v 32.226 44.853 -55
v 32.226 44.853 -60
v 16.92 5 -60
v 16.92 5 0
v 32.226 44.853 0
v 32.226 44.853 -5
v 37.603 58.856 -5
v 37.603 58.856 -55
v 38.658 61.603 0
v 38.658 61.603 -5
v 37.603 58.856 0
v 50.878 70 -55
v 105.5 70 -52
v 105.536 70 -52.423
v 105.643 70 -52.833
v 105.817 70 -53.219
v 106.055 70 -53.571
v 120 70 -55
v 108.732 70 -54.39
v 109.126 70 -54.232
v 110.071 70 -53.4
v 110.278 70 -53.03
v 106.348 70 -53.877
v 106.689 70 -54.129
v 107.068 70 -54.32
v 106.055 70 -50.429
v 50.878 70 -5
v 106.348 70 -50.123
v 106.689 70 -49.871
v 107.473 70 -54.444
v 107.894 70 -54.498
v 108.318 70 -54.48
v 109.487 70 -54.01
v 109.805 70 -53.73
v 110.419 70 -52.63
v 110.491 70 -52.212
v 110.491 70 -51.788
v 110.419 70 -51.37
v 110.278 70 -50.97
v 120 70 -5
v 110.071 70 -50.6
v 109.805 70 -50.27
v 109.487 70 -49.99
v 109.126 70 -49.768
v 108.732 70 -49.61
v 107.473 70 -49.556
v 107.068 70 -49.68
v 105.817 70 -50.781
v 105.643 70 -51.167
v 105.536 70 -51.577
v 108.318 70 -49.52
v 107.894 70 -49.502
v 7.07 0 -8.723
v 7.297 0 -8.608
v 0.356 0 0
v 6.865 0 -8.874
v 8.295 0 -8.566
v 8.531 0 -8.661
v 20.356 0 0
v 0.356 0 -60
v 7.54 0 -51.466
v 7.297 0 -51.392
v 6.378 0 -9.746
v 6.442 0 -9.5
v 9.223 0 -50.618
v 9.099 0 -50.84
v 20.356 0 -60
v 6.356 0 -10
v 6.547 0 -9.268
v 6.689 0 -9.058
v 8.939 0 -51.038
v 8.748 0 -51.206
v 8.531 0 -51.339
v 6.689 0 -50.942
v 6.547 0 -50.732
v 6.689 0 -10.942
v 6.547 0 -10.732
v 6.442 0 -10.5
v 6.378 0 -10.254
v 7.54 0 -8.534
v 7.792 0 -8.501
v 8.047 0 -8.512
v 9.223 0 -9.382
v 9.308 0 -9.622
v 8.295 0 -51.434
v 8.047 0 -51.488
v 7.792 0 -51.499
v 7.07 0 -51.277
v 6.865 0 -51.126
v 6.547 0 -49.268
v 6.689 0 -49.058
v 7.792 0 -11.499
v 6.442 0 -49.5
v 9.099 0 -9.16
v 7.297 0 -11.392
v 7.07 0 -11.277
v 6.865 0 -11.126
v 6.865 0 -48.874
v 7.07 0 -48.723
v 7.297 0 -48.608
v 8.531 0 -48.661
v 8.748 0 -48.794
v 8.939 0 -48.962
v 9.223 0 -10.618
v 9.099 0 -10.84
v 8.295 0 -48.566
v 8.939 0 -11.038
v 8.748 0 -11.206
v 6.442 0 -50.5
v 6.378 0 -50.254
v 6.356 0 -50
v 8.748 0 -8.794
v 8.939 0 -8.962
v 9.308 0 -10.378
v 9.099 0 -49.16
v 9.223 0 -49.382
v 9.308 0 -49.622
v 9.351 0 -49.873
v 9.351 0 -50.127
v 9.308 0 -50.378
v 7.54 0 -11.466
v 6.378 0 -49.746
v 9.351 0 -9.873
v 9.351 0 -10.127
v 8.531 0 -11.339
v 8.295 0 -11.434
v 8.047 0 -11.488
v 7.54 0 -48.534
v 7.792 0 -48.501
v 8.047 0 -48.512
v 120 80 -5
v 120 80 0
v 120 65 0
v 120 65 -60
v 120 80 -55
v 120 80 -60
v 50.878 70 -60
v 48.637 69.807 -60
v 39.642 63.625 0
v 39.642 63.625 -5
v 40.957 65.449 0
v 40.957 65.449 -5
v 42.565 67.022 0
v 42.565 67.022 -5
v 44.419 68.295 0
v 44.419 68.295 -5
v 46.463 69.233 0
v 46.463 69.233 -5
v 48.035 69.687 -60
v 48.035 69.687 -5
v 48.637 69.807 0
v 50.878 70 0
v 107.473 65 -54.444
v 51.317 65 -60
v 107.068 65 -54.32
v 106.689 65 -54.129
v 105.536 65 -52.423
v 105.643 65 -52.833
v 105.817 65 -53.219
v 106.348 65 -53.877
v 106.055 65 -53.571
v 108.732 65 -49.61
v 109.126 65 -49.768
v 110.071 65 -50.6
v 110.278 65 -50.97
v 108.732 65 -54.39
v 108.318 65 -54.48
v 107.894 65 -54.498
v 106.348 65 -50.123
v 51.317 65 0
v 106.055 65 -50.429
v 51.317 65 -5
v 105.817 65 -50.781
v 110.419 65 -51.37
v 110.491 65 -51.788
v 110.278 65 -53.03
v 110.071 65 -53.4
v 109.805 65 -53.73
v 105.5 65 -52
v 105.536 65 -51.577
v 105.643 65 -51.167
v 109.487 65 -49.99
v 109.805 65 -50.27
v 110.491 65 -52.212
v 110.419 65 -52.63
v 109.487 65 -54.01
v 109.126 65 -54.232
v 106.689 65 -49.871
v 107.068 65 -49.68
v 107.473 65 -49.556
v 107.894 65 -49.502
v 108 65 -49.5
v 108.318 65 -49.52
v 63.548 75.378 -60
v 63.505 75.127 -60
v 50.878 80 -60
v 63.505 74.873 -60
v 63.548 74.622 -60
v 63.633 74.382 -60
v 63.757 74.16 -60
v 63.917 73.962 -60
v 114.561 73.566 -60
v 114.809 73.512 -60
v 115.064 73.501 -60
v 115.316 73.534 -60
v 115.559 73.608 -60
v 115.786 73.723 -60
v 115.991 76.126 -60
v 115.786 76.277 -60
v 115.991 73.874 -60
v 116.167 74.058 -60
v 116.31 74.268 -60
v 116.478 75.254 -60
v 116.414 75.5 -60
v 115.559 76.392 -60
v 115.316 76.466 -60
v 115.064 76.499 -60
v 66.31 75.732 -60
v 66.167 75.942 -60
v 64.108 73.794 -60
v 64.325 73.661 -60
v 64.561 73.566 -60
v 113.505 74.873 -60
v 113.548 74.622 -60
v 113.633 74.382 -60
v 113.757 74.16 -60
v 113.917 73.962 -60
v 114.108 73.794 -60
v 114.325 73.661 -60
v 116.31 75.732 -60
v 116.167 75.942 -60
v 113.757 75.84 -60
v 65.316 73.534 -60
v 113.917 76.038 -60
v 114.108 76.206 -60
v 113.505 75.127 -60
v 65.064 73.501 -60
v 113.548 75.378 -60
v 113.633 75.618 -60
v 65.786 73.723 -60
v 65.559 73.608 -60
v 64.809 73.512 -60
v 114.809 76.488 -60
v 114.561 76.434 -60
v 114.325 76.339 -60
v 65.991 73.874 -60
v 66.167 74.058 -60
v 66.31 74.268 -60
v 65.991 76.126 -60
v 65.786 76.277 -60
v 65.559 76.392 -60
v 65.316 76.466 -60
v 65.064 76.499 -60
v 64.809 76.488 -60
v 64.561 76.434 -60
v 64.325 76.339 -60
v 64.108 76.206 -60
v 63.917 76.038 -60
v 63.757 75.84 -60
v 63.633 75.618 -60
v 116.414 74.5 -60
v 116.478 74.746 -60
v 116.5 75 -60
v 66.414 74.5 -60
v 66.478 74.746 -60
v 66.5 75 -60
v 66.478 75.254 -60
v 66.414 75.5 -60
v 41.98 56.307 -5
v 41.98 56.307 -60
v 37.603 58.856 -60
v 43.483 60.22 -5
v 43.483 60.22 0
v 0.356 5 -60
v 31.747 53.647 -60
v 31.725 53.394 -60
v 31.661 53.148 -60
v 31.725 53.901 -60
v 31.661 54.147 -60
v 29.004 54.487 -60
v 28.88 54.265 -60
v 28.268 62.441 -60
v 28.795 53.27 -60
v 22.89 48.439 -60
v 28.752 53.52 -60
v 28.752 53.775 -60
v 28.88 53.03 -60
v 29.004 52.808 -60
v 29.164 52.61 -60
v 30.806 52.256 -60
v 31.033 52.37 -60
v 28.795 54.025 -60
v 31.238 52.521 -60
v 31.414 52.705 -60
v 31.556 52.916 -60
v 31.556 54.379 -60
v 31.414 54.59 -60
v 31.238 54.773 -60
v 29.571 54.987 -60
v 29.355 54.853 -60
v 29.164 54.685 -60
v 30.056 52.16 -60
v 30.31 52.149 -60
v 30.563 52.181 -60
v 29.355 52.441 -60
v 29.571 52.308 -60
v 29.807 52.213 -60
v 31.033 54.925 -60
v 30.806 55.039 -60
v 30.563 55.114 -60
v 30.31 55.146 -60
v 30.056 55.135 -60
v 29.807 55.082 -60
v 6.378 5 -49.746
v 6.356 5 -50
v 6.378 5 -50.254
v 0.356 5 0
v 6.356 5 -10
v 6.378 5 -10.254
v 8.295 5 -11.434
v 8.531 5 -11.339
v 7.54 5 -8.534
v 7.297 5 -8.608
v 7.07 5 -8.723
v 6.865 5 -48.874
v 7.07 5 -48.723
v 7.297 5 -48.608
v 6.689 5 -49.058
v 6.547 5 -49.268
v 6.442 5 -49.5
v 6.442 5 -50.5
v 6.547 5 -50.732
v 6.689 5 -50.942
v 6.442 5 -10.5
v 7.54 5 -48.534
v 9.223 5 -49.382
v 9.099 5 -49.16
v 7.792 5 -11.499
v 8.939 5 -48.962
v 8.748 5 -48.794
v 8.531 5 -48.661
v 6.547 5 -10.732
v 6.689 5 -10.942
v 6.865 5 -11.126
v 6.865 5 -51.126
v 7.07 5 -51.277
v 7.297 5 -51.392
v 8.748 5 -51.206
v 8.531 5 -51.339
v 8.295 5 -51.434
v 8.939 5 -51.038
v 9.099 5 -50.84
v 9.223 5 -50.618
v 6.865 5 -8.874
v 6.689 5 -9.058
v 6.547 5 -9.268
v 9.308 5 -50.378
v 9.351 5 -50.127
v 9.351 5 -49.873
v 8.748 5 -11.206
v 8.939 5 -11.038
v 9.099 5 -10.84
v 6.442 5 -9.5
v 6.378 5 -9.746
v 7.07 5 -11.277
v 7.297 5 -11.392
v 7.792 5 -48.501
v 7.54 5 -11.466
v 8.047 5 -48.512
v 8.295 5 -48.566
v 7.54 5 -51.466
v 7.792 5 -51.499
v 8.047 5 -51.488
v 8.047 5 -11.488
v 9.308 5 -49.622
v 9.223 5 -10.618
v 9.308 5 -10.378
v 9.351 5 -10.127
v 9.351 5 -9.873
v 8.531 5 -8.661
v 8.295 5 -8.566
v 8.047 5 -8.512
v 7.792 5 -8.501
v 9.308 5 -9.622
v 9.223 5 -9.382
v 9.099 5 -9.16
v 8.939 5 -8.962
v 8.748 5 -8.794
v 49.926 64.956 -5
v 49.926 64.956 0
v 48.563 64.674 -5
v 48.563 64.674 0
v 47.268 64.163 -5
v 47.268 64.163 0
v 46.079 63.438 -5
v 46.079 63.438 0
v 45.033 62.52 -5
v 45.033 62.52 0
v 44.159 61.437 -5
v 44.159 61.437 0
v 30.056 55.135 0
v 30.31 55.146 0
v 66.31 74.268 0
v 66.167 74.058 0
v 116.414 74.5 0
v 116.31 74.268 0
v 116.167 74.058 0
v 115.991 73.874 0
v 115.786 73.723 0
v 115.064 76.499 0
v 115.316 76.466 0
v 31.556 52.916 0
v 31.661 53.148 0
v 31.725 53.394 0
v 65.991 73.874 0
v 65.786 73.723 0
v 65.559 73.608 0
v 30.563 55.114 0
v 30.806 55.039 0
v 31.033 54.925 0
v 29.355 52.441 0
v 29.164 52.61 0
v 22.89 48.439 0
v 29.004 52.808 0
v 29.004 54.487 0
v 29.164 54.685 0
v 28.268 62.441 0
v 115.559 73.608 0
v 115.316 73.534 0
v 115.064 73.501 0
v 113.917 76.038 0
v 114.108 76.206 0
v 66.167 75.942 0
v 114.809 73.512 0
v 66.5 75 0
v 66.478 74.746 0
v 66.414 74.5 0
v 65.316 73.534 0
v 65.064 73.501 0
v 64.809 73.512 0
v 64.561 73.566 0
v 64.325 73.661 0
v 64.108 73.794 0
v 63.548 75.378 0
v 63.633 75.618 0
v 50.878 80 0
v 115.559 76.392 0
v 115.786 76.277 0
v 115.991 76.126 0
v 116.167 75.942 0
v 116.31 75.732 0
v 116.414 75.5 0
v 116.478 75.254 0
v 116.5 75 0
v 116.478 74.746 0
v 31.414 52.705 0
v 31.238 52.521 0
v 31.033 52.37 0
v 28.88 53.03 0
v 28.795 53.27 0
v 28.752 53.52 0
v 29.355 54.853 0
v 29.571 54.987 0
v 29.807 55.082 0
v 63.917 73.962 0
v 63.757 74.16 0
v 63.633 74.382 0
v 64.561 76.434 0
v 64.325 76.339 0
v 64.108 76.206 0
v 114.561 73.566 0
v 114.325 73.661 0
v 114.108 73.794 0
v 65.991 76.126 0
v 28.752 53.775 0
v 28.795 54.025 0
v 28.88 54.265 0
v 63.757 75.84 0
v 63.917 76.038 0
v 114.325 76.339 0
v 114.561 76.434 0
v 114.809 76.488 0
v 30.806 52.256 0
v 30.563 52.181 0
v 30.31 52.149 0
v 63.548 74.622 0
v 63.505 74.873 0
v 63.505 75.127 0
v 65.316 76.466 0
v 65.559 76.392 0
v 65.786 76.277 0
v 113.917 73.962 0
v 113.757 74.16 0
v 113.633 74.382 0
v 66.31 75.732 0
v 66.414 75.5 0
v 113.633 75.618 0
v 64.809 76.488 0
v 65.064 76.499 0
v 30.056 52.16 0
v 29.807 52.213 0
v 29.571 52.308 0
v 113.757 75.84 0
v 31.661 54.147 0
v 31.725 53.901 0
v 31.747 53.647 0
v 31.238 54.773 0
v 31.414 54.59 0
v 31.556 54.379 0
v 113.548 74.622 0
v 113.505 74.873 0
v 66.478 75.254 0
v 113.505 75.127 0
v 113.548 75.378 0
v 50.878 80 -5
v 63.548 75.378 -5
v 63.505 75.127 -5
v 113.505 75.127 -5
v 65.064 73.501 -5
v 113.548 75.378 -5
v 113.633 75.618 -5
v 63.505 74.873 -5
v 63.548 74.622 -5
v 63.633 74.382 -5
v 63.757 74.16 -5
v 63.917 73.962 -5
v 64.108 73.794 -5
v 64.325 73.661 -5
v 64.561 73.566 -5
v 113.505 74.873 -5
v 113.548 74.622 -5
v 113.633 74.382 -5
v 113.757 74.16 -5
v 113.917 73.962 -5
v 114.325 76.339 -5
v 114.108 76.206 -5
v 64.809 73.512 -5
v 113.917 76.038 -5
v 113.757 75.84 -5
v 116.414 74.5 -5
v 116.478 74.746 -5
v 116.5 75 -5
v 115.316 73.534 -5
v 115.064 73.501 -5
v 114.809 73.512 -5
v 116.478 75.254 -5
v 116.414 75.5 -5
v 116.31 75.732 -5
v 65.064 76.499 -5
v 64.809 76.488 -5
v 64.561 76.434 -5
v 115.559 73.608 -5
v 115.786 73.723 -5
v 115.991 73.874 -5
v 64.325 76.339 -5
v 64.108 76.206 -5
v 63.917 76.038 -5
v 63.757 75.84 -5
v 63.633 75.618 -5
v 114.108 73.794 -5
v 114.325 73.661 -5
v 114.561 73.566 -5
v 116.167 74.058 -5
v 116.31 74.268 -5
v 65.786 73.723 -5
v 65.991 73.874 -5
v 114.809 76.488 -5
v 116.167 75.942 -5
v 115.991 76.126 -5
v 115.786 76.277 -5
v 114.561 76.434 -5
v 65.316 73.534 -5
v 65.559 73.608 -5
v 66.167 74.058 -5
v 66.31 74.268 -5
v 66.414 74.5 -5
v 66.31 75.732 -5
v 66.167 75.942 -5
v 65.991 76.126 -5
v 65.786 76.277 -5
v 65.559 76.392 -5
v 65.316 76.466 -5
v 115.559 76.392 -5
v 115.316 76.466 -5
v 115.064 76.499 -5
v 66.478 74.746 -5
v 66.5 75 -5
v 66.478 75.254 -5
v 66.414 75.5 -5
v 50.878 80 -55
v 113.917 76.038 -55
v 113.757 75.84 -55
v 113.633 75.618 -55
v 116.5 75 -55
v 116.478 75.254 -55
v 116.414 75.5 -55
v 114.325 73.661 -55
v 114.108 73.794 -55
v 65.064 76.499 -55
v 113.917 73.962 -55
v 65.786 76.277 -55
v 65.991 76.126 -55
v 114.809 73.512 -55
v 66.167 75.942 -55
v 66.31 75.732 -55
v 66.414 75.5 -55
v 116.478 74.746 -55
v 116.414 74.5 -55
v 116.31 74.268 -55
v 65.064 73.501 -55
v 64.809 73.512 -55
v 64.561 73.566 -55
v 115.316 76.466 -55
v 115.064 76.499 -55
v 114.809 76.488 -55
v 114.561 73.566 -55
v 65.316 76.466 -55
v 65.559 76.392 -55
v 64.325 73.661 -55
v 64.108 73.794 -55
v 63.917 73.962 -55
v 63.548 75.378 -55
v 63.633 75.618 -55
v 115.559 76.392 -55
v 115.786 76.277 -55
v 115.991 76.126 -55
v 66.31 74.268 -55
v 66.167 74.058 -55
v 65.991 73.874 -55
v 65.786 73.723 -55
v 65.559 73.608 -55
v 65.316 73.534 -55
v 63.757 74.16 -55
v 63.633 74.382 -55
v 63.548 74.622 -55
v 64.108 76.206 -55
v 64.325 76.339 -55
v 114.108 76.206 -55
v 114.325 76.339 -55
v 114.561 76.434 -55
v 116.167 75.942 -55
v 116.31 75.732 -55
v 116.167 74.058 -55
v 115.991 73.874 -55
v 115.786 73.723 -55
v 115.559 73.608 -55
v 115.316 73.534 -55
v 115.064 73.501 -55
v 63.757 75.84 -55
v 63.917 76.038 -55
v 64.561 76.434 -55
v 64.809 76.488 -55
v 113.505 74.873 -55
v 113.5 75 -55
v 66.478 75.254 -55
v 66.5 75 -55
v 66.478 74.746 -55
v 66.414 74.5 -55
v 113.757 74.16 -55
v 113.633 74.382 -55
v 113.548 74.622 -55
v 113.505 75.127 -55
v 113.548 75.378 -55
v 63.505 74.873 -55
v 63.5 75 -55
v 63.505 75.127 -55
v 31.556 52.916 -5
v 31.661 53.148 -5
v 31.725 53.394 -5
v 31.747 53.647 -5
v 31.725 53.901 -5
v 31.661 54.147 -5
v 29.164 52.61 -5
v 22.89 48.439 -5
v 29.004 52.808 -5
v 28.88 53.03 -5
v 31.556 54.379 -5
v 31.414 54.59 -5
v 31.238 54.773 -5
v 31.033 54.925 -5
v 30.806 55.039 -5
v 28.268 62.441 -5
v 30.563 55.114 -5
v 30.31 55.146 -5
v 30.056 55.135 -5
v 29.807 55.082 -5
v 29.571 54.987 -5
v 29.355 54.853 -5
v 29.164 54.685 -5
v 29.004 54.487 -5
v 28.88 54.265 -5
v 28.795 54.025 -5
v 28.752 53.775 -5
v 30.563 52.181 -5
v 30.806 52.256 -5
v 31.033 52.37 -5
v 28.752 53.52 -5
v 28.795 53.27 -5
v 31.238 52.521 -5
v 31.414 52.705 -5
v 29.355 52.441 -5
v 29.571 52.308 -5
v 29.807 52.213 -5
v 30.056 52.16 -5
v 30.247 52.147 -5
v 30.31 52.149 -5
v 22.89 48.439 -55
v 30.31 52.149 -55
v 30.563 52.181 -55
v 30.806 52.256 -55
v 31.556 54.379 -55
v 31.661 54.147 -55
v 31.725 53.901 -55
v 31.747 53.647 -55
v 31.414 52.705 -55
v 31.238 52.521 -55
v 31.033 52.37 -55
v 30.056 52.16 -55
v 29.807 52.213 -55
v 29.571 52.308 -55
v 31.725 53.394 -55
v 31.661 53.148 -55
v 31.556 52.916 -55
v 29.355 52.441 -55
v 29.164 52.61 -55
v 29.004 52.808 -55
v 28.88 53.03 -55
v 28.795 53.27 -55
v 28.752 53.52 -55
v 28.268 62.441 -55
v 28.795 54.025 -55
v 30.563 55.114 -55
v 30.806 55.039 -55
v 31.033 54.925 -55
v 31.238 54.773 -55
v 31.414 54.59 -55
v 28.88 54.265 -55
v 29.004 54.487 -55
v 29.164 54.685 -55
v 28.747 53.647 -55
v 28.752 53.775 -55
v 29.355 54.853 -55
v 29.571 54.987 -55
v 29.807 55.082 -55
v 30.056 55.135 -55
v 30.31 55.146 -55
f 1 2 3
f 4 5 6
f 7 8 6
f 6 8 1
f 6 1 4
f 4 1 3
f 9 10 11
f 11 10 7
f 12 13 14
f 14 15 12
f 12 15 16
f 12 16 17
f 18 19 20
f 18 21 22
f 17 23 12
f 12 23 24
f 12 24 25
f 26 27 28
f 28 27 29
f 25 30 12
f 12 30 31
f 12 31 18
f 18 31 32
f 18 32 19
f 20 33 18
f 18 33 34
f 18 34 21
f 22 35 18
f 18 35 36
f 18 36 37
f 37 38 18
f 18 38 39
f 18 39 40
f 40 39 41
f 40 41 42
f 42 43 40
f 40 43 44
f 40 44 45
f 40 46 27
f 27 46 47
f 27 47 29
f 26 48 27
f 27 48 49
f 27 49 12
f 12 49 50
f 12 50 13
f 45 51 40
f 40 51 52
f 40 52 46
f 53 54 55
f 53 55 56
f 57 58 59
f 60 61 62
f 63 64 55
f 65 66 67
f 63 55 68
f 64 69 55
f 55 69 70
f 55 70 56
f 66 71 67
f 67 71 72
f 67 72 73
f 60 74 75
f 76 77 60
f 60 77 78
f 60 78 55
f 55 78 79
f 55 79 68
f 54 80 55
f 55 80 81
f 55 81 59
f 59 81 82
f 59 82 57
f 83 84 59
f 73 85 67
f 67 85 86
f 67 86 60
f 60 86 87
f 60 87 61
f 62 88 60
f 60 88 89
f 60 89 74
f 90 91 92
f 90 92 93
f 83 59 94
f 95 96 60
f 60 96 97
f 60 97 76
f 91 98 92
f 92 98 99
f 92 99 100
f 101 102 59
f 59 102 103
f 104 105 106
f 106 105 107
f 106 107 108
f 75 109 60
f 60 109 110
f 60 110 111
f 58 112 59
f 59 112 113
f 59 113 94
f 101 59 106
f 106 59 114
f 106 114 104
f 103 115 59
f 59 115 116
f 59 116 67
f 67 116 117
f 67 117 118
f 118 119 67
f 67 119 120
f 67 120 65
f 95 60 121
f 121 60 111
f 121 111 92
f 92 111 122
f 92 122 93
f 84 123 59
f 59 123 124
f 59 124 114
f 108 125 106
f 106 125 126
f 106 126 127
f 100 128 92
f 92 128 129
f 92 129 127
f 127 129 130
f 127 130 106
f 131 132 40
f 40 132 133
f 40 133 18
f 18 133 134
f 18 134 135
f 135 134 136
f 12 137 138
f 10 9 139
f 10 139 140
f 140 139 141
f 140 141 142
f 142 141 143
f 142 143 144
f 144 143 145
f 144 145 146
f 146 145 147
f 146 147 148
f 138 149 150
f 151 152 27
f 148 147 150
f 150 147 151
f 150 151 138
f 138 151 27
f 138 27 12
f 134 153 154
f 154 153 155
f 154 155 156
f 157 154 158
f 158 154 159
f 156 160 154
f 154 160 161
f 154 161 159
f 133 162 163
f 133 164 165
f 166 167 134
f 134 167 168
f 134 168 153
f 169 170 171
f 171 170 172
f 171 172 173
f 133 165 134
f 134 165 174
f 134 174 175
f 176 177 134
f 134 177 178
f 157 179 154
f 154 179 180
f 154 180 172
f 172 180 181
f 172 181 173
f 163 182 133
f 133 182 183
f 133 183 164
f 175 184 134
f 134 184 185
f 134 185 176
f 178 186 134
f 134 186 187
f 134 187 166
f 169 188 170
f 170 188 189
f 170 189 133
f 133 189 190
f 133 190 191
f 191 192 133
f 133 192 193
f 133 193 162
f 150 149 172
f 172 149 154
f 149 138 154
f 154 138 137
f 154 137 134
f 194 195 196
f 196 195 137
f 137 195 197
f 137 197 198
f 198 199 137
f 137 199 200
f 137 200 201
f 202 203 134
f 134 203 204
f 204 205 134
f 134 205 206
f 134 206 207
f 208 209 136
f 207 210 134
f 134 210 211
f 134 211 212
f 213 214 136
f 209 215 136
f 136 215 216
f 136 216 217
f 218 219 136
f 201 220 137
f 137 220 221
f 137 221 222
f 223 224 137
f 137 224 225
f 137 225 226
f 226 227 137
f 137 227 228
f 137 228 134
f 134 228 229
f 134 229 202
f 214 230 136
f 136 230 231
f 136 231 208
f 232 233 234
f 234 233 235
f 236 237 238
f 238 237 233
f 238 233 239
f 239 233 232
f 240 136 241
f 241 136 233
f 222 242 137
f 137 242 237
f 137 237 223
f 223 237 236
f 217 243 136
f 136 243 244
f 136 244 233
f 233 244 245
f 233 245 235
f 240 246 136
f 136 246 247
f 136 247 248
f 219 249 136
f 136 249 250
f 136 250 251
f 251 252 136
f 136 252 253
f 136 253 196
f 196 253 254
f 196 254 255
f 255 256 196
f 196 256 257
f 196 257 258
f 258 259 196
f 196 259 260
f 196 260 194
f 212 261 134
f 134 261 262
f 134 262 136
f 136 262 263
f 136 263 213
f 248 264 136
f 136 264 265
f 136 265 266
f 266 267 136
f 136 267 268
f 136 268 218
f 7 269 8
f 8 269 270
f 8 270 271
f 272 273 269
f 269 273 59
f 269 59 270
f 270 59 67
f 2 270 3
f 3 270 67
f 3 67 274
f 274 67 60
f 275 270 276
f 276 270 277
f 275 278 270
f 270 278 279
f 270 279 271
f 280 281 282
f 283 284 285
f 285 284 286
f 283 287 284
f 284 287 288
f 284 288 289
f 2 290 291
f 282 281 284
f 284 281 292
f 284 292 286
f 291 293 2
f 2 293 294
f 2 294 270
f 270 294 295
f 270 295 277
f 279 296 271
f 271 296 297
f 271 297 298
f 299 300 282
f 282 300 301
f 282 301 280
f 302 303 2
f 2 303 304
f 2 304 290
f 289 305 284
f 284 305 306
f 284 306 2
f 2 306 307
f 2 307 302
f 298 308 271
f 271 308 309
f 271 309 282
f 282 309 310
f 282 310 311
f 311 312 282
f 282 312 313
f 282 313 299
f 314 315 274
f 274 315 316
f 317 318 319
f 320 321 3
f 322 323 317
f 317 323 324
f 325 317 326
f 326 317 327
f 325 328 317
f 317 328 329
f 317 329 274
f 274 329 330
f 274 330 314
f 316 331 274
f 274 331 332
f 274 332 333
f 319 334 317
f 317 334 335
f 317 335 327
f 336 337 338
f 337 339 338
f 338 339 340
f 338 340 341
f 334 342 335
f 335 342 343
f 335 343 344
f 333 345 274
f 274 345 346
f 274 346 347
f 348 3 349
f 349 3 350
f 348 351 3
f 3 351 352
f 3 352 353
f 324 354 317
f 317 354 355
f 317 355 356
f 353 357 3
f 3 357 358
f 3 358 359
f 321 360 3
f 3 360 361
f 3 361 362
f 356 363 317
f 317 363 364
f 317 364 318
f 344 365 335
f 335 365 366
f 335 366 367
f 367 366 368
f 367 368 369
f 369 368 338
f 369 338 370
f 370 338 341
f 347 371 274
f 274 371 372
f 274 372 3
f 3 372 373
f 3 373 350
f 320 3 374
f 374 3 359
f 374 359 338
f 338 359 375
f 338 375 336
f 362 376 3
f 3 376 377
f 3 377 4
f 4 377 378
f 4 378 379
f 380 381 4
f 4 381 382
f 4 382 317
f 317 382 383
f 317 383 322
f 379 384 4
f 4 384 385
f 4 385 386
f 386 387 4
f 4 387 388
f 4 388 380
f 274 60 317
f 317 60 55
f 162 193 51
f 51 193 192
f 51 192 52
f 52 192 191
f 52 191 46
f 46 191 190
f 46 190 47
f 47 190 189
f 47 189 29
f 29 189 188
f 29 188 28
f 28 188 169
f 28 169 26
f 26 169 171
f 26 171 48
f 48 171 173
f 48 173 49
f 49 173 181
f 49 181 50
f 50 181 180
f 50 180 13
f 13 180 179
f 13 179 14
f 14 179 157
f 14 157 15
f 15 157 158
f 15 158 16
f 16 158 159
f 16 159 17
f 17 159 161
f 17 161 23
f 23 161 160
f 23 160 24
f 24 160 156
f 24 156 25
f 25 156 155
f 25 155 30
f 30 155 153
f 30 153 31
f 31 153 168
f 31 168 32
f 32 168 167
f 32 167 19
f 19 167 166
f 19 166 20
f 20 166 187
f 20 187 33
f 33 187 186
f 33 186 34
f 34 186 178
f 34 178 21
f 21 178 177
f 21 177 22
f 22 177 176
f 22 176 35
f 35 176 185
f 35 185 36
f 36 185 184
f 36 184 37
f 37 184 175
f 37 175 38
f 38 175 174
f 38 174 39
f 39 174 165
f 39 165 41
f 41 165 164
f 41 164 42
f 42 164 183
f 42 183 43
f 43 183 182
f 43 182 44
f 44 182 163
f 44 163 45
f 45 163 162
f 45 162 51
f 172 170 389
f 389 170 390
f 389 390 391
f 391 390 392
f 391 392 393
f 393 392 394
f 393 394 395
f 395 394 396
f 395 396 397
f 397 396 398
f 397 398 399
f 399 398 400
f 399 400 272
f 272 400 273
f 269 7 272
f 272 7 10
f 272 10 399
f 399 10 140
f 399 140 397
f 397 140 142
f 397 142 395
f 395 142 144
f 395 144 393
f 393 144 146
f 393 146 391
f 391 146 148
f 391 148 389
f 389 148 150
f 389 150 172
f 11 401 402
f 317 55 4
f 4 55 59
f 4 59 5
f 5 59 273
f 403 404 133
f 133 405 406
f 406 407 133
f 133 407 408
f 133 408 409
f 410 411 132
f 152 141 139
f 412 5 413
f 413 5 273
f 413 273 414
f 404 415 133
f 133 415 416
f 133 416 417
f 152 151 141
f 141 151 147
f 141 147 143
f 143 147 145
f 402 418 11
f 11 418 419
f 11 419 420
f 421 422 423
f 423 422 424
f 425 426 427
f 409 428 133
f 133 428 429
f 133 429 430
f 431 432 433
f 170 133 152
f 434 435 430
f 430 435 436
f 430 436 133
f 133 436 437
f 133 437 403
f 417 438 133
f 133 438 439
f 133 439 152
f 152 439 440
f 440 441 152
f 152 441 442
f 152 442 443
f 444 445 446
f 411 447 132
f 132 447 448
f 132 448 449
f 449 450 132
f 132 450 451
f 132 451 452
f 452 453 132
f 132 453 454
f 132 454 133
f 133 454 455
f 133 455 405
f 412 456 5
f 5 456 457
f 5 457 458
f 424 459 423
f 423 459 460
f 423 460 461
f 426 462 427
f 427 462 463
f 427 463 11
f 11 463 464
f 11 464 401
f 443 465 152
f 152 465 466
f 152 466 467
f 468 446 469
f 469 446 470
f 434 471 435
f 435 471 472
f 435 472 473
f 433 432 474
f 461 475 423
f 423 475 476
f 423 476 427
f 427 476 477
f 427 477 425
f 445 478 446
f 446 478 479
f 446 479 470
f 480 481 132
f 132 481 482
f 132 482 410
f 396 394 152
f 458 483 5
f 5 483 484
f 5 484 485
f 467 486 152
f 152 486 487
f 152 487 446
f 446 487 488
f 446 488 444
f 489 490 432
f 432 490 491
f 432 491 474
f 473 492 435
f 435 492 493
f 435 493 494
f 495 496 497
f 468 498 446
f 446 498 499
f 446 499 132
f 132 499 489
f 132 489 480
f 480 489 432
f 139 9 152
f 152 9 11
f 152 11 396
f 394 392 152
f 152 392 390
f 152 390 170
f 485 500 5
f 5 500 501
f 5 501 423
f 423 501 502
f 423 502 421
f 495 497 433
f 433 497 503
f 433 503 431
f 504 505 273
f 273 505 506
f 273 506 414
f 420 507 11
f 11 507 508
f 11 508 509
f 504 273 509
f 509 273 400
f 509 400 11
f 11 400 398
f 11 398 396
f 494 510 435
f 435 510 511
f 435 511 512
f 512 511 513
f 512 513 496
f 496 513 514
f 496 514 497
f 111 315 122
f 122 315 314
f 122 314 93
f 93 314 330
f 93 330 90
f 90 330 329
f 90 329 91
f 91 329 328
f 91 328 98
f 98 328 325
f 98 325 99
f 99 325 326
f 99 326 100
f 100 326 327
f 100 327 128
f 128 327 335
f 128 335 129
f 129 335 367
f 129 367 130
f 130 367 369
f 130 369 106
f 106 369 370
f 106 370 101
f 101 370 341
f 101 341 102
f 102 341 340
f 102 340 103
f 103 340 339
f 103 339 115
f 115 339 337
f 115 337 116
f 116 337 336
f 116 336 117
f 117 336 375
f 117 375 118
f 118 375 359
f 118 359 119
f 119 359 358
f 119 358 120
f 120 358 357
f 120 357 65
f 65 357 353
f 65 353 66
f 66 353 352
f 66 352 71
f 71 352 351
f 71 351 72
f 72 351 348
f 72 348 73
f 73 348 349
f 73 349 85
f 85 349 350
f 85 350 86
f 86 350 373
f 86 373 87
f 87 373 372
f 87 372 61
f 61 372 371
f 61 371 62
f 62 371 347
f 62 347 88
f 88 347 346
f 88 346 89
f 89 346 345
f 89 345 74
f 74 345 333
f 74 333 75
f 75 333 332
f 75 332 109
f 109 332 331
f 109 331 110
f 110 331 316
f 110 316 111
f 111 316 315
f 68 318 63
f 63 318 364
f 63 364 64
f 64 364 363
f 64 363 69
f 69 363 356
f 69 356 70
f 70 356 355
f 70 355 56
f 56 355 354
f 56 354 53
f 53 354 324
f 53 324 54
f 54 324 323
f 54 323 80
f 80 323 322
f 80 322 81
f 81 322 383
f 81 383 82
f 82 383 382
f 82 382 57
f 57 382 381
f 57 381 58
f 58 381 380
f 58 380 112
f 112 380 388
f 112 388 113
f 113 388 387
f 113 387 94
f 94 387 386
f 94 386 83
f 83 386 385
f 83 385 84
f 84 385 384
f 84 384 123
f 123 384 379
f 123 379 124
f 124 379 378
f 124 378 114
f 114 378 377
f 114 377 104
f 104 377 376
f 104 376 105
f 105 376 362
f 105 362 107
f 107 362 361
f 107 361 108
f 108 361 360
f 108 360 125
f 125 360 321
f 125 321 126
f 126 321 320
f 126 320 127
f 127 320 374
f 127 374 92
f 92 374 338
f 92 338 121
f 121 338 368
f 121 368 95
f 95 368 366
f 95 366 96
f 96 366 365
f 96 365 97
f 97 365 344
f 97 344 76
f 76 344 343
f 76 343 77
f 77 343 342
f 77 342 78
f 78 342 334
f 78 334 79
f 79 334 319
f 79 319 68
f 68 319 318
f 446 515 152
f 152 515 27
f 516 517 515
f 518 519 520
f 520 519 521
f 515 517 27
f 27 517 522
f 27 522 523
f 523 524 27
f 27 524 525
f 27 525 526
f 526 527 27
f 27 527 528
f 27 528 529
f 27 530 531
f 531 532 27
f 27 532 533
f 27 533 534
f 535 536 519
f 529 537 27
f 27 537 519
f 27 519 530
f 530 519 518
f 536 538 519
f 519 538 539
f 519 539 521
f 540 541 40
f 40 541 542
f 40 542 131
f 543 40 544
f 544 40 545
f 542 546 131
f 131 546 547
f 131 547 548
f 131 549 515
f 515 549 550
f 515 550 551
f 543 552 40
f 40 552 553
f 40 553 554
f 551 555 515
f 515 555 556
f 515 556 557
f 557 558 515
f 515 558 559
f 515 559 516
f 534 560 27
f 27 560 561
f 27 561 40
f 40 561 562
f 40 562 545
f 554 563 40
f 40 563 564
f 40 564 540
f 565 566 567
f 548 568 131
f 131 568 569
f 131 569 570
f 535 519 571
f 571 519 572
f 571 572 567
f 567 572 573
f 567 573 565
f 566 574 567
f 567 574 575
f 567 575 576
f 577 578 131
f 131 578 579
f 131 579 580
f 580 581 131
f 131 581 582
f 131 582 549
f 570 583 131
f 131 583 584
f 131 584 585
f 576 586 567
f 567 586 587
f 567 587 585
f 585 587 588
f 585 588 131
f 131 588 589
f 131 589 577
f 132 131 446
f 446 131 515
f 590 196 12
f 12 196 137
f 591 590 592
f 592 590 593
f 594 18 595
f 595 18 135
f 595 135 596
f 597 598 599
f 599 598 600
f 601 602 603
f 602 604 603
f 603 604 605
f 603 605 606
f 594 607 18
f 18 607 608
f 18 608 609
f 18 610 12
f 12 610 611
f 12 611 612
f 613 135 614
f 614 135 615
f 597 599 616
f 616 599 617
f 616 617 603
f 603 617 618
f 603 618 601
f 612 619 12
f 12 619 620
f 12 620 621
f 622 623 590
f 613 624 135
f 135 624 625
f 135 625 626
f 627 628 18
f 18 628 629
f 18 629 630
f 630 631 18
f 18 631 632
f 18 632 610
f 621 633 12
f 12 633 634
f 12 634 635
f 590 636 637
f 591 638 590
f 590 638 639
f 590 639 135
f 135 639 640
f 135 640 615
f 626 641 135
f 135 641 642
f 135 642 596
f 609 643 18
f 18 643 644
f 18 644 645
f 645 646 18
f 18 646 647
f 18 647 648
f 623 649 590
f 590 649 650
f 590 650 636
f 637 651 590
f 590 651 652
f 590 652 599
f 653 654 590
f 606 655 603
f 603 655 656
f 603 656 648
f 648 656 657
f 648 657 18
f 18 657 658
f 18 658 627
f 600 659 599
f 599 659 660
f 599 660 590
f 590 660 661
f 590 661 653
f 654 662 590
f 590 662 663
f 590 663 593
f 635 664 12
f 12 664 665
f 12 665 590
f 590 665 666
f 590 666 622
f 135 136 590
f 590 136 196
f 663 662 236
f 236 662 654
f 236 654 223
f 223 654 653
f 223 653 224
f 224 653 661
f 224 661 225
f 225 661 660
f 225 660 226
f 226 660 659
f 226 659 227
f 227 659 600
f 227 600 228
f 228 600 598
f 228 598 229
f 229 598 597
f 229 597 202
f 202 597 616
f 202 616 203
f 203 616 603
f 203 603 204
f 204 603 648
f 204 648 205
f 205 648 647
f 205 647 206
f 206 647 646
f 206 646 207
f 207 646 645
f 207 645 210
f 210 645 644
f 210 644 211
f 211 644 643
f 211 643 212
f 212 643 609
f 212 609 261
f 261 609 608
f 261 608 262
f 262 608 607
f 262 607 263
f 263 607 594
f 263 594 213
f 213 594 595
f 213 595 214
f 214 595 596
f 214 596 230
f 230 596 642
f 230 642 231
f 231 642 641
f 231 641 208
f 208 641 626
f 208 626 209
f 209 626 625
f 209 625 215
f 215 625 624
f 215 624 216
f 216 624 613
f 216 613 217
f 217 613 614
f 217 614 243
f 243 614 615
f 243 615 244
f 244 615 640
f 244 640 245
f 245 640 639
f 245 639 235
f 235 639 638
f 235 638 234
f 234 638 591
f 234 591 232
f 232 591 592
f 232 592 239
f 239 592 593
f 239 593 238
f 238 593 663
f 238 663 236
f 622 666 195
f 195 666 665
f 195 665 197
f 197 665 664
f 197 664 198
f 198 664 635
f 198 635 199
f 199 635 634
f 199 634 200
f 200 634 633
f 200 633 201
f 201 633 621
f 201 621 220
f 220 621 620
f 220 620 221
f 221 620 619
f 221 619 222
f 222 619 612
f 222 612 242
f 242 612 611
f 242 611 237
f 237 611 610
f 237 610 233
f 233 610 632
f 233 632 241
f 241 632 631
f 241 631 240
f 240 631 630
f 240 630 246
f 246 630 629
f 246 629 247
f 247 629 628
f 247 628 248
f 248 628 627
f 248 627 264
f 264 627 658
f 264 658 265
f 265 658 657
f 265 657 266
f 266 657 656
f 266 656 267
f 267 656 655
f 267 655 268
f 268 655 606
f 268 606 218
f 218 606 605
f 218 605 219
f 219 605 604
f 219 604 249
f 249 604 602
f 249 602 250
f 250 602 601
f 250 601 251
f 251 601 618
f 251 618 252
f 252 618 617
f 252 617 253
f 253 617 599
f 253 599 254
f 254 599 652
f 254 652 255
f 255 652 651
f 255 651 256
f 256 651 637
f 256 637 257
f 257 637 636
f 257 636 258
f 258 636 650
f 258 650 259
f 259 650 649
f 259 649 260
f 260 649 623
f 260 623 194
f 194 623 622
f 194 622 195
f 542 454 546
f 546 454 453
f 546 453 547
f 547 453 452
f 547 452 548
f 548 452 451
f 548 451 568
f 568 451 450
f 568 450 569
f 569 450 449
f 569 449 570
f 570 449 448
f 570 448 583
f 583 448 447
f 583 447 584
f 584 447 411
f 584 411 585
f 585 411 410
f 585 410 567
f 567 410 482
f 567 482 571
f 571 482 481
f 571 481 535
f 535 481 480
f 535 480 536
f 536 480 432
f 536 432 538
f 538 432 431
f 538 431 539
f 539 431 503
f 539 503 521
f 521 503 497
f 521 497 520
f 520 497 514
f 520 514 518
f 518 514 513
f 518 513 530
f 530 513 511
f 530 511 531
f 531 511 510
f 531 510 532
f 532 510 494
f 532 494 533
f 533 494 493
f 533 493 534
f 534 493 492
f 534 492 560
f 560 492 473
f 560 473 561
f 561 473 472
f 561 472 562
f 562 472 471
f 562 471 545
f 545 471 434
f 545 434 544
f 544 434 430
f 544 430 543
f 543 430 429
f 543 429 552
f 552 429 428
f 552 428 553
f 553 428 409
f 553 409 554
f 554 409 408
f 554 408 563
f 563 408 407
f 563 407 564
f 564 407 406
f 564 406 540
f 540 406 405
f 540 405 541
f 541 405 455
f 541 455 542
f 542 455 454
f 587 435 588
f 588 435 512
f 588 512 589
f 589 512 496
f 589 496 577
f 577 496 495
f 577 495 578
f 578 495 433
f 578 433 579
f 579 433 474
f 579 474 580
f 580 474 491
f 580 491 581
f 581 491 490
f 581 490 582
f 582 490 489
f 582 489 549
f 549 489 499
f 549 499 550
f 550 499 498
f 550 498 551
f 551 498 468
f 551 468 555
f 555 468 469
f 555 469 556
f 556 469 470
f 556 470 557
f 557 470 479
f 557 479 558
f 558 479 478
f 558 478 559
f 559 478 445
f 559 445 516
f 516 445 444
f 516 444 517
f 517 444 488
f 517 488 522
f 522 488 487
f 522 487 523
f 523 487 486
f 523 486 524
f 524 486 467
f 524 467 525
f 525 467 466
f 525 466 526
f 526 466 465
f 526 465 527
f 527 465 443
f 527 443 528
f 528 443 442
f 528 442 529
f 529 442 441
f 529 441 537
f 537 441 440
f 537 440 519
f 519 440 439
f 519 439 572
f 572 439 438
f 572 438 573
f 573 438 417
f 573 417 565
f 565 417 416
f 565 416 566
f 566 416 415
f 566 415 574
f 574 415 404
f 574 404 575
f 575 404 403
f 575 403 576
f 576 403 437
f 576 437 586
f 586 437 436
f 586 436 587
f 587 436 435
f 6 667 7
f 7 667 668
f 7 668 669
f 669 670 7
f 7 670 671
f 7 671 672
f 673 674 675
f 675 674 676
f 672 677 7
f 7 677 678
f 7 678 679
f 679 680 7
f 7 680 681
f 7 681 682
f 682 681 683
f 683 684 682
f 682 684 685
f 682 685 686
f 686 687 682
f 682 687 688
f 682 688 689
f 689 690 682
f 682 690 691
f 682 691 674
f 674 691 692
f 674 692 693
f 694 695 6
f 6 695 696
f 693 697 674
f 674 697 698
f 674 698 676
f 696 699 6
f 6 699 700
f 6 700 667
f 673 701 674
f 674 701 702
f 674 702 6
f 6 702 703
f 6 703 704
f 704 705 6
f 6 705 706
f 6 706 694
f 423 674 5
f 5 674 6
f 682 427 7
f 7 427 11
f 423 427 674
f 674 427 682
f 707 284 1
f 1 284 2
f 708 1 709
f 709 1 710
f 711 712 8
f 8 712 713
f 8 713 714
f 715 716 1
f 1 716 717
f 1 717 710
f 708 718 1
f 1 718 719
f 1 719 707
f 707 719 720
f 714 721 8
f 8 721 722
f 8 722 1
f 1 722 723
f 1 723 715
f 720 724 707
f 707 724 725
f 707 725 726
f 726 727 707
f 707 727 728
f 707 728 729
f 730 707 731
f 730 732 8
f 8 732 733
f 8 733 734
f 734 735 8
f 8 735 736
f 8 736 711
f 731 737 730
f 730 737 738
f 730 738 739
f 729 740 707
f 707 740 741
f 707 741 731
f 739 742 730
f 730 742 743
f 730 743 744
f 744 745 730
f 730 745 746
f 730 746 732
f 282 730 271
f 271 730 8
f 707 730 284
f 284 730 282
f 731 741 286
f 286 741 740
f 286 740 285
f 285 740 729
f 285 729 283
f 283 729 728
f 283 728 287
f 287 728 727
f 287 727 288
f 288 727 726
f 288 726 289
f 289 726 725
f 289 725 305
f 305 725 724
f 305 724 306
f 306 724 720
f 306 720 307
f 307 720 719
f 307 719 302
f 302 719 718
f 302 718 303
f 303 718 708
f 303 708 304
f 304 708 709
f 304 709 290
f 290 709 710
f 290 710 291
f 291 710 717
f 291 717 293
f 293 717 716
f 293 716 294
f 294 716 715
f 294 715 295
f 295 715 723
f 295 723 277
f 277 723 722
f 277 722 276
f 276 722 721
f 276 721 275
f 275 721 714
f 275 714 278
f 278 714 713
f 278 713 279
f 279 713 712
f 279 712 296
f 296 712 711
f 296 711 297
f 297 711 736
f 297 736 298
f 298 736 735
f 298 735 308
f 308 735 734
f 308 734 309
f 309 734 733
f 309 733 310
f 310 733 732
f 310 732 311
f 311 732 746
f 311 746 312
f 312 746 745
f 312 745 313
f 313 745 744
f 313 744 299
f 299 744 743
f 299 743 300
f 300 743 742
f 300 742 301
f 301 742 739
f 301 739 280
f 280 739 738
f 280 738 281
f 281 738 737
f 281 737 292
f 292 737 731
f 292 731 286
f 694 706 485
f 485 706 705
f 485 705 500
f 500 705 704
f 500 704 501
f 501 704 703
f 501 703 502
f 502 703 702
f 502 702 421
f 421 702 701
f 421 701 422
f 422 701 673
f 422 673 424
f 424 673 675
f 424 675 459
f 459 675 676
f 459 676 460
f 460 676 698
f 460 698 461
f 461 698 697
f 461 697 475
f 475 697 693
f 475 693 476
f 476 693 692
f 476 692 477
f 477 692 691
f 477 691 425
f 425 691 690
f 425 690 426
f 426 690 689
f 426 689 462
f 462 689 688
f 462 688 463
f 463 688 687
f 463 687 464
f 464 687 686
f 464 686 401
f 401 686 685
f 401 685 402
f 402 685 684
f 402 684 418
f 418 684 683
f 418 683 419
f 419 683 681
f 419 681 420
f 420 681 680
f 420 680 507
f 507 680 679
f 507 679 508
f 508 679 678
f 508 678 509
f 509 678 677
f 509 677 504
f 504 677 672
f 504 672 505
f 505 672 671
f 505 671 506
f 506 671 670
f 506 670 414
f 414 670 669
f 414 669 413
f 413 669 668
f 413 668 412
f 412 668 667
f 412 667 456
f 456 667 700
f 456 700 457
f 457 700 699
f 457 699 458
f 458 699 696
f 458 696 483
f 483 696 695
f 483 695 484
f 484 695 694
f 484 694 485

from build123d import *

# Parameters (mm, degrees)
SKETCH1_W               = 120
SKETCH1_H               = 100
BOSS_EXTRUDE1_DEPTH     = 5
SKETCH2_R               = 2.5
CUT_EXTRUDE1_DEPTH      = 6
CUT_EXTRUDE3_DEPTH      = 10
BOSS_EXTRUDE3_DEPTH     = 60
SKETCH8_W               = 20
SKETCH8_H               = 5
BOSS_EXTRUDE4_DEPTH     = 65
SKETCH9_R               = 2.5
CUT_EXTRUDE4_DEPTH      = 71
BOSS_EXTRUDE5_DEPTH     = 5
SKETCH11_W              = 5
SKETCH11_H              = 70
CUT_EXTRUDE6_DEPTH      = 1
CUT_EXTRUDE6_DEPTH_BACK = 120.643960247
SKETCH12_R              = 1.5
CUT_EXTRUDE7_DEPTH      = 66
CUT_EXTRUDE7_DEPTH_BACK = 6
SKETCH13_W              = 69.121998964
SKETCH13_H              = 5
BOSS_EXTRUDE6_DEPTH     = 10
SKETCH14_R              = 1.5
CUT_EXTRUDE8_DEPTH      = 61
SKETCH15_W              = 5
SKETCH15_H              = 15
BOSS_EXTRUDE7_DEPTH     = 10
SKETCH17_R              = 1.5
CUT_EXTRUDE9_DEPTH      = 61


with BuildPart() as part:
    # Sketch1 → Boss-Extrude1 (new body)
    with BuildSketch(Plane.XY):
        with Locations((60, 50)):
            Rectangle(SKETCH1_W, SKETCH1_H)
    extrude(amount=BOSS_EXTRUDE1_DEPTH)

    # Sketch2 → Cut-Extrude1 (cut, through all)
    with BuildSketch(Plane.XY.offset(5)):
        with Locations((50.878001036, 56.909722104)):
            Circle(SKETCH2_R)
        with BuildLine():
            ThreePointArc((85.579375435, 7.351023424), (95.403755905, 15.949898455), (103.154556632, 26.456286582))
            ThreePointArc((103.154556632, 26.456286582), (98.465291161, 44.232978888), (80.688598855, 39.543713418))
            ThreePointArc((80.688598855, 39.543713418), (76.268720755, 33.552467296), (70.66638809, 28.648976576))
            ThreePointArc((70.66638809, 28.648976576), (67.473905187, 10.543506327), (85.579375435, 7.351023424))
        make_face()
    extrude(amount=-CUT_EXTRUDE1_DEPTH, mode=Mode.SUBTRACT)

    # Sketch5 → Cut-Extrude3 (cut)
    with BuildSketch(Plane.XY.offset(5)):
        with BuildLine():
            Line((120, 70), (50.878001036, 70))
            ThreePointArc((50.878001036, 70), (43.464411706, 67.698330385), (38.657892056, 61.602728806))
            Line((38.657892056, 61.602728806), (15, 0))
            Line((15, 0), (0, 0))
            Line((0, 0), (0, 100))
            Line((0, 100), (120, 100))
            Line((120, 100), (120, 70))
        make_face()
    extrude(amount=-CUT_EXTRUDE3_DEPTH, mode=Mode.SUBTRACT)

    # Sketch7 → Boss-Extrude3 (add)
    with BuildSketch(Plane(origin=(0, 0, 0), x_dir=(-1, 0, 0), z_dir=(0, 0, -1))):
        Polygon((-15, 0), (-37.603180225, 58.856367181), (-41.980029807, 56.306656226), (-20.356039753, 0), align=None)
        with BuildLine():
            Line((-120, 70), (-50.878001036, 70))
            ThreePointArc((-50.878001036, 70), (-49.44782984, 69.92163917), (-48.034781184, 69.687494847))
            Line((-48.034781184, 69.687494847), (-51.317000411, 65))
            Line((-51.317000411, 65), (-120, 65))
            Line((-120, 65), (-120, 70))
        make_face()
    extrude(amount=BOSS_EXTRUDE3_DEPTH)

    # Sketch8 → Boss-Extrude4 (add, through all)
    with BuildSketch(Plane(origin=(0, 0, -60), x_dir=(-1, 0, 0), z_dir=(0, 0, -1))):
        with Locations((-10.356039753, 2.5)):
            Rectangle(SKETCH8_W, SKETCH8_H)
    extrude(amount=-BOSS_EXTRUDE4_DEPTH)

    # Sketch9 → Cut-Extrude4 (cut, through all)
    with BuildSketch(Plane(origin=(0, 70, 0), x_dir=(1, 0, 0), z_dir=(0, 1, 0))):
        with Locations((108, 52)):
            Circle(SKETCH9_R)
    extrude(amount=-CUT_EXTRUDE4_DEPTH, mode=Mode.SUBTRACT)

    # Sketch10 → Boss-Extrude5 (add)
    with BuildSketch(Plane(origin=(0, 0, 0), x_dir=(-1, 0, 0), z_dir=(0, 0, -1))):
        with BuildLine():
            Line((-38.657892056, 61.602728806), (-37.603180225, 58.856367181))
            Line((-37.603180225, 58.856367181), (-41.980029807, 56.306656226))
            Line((-41.980029807, 56.306656226), (-43.482905887, 60.219991674))
            ThreePointArc((-43.482905887, 60.219991674), (-46.657937411, 63.826106989), (-51.317000411, 65))
            Line((-51.317000411, 65), (-48.034781184, 69.687494847))
            ThreePointArc((-48.034781184, 69.687494847), (-42.330087293, 66.823780104), (-38.657892056, 61.602728806))
        make_face()
    extrude(amount=BOSS_EXTRUDE5_DEPTH)

    # Sketch11 → Cut-Extrude6 (cut, two sides)
    with BuildSketch(Plane(origin=(120, 0, 0), x_dir=(0, 0, -1), z_dir=(1, 0, 0))) as cut_extrude6_sk:
        with Locations((-2.5, 35)):
            Rectangle(SKETCH11_W, SKETCH11_H)
    extrude(amount=CUT_EXTRUDE6_DEPTH, mode=Mode.SUBTRACT)
    extrude(cut_extrude6_sk.sketch, amount=-CUT_EXTRUDE6_DEPTH_BACK, mode=Mode.SUBTRACT)

    # Sketch12 → Cut-Extrude7 (cut, two sides)
    with BuildSketch(Plane(origin=(0, 5, 0), x_dir=(1, 0, 0), z_dir=(0, 1, 0))) as cut_extrude7_sk:
        with Locations((7.856039753, 10)):
            Circle(SKETCH12_R)
        with Locations((7.856039753, 50)):
            Circle(SKETCH12_R)
    extrude(amount=CUT_EXTRUDE7_DEPTH, mode=Mode.SUBTRACT)
    extrude(cut_extrude7_sk.sketch, amount=-CUT_EXTRUDE7_DEPTH_BACK, mode=Mode.SUBTRACT)

    # Sketch13 → Boss-Extrude6 (add)
    with BuildSketch(Plane(origin=(0, 70, 0), x_dir=(1, 0, 0), z_dir=(0, 1, 0))):
        with Locations((85.439000518, 2.5)):
            Rectangle(SKETCH13_W, SKETCH13_H)
        with Locations((85.439000518, 57.5)):
            Rectangle(SKETCH13_W, SKETCH13_H)
    extrude(amount=BOSS_EXTRUDE6_DEPTH)

    # Sketch14 → Cut-Extrude8 (cut, through all)
    with BuildSketch(Plane.XY):
        with Locations((65, 75)):
            Circle(SKETCH14_R)
        with Locations((115, 75)):
            Circle(SKETCH14_R)
    extrude(amount=-CUT_EXTRUDE8_DEPTH, mode=Mode.SUBTRACT)

    # Sketch15 → Boss-Extrude7 (add)
    with BuildSketch(Plane(origin=(13.072049518, -5.020185671, 0), x_dir=(0, 0, 1), z_dir=(-0.933525558, 0.358510854, 0))):
        with Locations((-2.5, 60.925071268)):
            Rectangle(SKETCH15_W, SKETCH15_H)
        with Locations((-57.5, 60.925071268)):
            Rectangle(SKETCH15_W, SKETCH15_H)
    extrude(amount=BOSS_EXTRUDE7_DEPTH)

    # Sketch17 → Cut-Extrude9 (cut, through all)
    with BuildSketch(Plane.XY):
        with Locations((30.246721032, 53.647479763)):
            Circle(SKETCH17_R)
    extrude(amount=-CUT_EXTRUDE9_DEPTH, mode=Mode.SUBTRACT)


solid = part.part
